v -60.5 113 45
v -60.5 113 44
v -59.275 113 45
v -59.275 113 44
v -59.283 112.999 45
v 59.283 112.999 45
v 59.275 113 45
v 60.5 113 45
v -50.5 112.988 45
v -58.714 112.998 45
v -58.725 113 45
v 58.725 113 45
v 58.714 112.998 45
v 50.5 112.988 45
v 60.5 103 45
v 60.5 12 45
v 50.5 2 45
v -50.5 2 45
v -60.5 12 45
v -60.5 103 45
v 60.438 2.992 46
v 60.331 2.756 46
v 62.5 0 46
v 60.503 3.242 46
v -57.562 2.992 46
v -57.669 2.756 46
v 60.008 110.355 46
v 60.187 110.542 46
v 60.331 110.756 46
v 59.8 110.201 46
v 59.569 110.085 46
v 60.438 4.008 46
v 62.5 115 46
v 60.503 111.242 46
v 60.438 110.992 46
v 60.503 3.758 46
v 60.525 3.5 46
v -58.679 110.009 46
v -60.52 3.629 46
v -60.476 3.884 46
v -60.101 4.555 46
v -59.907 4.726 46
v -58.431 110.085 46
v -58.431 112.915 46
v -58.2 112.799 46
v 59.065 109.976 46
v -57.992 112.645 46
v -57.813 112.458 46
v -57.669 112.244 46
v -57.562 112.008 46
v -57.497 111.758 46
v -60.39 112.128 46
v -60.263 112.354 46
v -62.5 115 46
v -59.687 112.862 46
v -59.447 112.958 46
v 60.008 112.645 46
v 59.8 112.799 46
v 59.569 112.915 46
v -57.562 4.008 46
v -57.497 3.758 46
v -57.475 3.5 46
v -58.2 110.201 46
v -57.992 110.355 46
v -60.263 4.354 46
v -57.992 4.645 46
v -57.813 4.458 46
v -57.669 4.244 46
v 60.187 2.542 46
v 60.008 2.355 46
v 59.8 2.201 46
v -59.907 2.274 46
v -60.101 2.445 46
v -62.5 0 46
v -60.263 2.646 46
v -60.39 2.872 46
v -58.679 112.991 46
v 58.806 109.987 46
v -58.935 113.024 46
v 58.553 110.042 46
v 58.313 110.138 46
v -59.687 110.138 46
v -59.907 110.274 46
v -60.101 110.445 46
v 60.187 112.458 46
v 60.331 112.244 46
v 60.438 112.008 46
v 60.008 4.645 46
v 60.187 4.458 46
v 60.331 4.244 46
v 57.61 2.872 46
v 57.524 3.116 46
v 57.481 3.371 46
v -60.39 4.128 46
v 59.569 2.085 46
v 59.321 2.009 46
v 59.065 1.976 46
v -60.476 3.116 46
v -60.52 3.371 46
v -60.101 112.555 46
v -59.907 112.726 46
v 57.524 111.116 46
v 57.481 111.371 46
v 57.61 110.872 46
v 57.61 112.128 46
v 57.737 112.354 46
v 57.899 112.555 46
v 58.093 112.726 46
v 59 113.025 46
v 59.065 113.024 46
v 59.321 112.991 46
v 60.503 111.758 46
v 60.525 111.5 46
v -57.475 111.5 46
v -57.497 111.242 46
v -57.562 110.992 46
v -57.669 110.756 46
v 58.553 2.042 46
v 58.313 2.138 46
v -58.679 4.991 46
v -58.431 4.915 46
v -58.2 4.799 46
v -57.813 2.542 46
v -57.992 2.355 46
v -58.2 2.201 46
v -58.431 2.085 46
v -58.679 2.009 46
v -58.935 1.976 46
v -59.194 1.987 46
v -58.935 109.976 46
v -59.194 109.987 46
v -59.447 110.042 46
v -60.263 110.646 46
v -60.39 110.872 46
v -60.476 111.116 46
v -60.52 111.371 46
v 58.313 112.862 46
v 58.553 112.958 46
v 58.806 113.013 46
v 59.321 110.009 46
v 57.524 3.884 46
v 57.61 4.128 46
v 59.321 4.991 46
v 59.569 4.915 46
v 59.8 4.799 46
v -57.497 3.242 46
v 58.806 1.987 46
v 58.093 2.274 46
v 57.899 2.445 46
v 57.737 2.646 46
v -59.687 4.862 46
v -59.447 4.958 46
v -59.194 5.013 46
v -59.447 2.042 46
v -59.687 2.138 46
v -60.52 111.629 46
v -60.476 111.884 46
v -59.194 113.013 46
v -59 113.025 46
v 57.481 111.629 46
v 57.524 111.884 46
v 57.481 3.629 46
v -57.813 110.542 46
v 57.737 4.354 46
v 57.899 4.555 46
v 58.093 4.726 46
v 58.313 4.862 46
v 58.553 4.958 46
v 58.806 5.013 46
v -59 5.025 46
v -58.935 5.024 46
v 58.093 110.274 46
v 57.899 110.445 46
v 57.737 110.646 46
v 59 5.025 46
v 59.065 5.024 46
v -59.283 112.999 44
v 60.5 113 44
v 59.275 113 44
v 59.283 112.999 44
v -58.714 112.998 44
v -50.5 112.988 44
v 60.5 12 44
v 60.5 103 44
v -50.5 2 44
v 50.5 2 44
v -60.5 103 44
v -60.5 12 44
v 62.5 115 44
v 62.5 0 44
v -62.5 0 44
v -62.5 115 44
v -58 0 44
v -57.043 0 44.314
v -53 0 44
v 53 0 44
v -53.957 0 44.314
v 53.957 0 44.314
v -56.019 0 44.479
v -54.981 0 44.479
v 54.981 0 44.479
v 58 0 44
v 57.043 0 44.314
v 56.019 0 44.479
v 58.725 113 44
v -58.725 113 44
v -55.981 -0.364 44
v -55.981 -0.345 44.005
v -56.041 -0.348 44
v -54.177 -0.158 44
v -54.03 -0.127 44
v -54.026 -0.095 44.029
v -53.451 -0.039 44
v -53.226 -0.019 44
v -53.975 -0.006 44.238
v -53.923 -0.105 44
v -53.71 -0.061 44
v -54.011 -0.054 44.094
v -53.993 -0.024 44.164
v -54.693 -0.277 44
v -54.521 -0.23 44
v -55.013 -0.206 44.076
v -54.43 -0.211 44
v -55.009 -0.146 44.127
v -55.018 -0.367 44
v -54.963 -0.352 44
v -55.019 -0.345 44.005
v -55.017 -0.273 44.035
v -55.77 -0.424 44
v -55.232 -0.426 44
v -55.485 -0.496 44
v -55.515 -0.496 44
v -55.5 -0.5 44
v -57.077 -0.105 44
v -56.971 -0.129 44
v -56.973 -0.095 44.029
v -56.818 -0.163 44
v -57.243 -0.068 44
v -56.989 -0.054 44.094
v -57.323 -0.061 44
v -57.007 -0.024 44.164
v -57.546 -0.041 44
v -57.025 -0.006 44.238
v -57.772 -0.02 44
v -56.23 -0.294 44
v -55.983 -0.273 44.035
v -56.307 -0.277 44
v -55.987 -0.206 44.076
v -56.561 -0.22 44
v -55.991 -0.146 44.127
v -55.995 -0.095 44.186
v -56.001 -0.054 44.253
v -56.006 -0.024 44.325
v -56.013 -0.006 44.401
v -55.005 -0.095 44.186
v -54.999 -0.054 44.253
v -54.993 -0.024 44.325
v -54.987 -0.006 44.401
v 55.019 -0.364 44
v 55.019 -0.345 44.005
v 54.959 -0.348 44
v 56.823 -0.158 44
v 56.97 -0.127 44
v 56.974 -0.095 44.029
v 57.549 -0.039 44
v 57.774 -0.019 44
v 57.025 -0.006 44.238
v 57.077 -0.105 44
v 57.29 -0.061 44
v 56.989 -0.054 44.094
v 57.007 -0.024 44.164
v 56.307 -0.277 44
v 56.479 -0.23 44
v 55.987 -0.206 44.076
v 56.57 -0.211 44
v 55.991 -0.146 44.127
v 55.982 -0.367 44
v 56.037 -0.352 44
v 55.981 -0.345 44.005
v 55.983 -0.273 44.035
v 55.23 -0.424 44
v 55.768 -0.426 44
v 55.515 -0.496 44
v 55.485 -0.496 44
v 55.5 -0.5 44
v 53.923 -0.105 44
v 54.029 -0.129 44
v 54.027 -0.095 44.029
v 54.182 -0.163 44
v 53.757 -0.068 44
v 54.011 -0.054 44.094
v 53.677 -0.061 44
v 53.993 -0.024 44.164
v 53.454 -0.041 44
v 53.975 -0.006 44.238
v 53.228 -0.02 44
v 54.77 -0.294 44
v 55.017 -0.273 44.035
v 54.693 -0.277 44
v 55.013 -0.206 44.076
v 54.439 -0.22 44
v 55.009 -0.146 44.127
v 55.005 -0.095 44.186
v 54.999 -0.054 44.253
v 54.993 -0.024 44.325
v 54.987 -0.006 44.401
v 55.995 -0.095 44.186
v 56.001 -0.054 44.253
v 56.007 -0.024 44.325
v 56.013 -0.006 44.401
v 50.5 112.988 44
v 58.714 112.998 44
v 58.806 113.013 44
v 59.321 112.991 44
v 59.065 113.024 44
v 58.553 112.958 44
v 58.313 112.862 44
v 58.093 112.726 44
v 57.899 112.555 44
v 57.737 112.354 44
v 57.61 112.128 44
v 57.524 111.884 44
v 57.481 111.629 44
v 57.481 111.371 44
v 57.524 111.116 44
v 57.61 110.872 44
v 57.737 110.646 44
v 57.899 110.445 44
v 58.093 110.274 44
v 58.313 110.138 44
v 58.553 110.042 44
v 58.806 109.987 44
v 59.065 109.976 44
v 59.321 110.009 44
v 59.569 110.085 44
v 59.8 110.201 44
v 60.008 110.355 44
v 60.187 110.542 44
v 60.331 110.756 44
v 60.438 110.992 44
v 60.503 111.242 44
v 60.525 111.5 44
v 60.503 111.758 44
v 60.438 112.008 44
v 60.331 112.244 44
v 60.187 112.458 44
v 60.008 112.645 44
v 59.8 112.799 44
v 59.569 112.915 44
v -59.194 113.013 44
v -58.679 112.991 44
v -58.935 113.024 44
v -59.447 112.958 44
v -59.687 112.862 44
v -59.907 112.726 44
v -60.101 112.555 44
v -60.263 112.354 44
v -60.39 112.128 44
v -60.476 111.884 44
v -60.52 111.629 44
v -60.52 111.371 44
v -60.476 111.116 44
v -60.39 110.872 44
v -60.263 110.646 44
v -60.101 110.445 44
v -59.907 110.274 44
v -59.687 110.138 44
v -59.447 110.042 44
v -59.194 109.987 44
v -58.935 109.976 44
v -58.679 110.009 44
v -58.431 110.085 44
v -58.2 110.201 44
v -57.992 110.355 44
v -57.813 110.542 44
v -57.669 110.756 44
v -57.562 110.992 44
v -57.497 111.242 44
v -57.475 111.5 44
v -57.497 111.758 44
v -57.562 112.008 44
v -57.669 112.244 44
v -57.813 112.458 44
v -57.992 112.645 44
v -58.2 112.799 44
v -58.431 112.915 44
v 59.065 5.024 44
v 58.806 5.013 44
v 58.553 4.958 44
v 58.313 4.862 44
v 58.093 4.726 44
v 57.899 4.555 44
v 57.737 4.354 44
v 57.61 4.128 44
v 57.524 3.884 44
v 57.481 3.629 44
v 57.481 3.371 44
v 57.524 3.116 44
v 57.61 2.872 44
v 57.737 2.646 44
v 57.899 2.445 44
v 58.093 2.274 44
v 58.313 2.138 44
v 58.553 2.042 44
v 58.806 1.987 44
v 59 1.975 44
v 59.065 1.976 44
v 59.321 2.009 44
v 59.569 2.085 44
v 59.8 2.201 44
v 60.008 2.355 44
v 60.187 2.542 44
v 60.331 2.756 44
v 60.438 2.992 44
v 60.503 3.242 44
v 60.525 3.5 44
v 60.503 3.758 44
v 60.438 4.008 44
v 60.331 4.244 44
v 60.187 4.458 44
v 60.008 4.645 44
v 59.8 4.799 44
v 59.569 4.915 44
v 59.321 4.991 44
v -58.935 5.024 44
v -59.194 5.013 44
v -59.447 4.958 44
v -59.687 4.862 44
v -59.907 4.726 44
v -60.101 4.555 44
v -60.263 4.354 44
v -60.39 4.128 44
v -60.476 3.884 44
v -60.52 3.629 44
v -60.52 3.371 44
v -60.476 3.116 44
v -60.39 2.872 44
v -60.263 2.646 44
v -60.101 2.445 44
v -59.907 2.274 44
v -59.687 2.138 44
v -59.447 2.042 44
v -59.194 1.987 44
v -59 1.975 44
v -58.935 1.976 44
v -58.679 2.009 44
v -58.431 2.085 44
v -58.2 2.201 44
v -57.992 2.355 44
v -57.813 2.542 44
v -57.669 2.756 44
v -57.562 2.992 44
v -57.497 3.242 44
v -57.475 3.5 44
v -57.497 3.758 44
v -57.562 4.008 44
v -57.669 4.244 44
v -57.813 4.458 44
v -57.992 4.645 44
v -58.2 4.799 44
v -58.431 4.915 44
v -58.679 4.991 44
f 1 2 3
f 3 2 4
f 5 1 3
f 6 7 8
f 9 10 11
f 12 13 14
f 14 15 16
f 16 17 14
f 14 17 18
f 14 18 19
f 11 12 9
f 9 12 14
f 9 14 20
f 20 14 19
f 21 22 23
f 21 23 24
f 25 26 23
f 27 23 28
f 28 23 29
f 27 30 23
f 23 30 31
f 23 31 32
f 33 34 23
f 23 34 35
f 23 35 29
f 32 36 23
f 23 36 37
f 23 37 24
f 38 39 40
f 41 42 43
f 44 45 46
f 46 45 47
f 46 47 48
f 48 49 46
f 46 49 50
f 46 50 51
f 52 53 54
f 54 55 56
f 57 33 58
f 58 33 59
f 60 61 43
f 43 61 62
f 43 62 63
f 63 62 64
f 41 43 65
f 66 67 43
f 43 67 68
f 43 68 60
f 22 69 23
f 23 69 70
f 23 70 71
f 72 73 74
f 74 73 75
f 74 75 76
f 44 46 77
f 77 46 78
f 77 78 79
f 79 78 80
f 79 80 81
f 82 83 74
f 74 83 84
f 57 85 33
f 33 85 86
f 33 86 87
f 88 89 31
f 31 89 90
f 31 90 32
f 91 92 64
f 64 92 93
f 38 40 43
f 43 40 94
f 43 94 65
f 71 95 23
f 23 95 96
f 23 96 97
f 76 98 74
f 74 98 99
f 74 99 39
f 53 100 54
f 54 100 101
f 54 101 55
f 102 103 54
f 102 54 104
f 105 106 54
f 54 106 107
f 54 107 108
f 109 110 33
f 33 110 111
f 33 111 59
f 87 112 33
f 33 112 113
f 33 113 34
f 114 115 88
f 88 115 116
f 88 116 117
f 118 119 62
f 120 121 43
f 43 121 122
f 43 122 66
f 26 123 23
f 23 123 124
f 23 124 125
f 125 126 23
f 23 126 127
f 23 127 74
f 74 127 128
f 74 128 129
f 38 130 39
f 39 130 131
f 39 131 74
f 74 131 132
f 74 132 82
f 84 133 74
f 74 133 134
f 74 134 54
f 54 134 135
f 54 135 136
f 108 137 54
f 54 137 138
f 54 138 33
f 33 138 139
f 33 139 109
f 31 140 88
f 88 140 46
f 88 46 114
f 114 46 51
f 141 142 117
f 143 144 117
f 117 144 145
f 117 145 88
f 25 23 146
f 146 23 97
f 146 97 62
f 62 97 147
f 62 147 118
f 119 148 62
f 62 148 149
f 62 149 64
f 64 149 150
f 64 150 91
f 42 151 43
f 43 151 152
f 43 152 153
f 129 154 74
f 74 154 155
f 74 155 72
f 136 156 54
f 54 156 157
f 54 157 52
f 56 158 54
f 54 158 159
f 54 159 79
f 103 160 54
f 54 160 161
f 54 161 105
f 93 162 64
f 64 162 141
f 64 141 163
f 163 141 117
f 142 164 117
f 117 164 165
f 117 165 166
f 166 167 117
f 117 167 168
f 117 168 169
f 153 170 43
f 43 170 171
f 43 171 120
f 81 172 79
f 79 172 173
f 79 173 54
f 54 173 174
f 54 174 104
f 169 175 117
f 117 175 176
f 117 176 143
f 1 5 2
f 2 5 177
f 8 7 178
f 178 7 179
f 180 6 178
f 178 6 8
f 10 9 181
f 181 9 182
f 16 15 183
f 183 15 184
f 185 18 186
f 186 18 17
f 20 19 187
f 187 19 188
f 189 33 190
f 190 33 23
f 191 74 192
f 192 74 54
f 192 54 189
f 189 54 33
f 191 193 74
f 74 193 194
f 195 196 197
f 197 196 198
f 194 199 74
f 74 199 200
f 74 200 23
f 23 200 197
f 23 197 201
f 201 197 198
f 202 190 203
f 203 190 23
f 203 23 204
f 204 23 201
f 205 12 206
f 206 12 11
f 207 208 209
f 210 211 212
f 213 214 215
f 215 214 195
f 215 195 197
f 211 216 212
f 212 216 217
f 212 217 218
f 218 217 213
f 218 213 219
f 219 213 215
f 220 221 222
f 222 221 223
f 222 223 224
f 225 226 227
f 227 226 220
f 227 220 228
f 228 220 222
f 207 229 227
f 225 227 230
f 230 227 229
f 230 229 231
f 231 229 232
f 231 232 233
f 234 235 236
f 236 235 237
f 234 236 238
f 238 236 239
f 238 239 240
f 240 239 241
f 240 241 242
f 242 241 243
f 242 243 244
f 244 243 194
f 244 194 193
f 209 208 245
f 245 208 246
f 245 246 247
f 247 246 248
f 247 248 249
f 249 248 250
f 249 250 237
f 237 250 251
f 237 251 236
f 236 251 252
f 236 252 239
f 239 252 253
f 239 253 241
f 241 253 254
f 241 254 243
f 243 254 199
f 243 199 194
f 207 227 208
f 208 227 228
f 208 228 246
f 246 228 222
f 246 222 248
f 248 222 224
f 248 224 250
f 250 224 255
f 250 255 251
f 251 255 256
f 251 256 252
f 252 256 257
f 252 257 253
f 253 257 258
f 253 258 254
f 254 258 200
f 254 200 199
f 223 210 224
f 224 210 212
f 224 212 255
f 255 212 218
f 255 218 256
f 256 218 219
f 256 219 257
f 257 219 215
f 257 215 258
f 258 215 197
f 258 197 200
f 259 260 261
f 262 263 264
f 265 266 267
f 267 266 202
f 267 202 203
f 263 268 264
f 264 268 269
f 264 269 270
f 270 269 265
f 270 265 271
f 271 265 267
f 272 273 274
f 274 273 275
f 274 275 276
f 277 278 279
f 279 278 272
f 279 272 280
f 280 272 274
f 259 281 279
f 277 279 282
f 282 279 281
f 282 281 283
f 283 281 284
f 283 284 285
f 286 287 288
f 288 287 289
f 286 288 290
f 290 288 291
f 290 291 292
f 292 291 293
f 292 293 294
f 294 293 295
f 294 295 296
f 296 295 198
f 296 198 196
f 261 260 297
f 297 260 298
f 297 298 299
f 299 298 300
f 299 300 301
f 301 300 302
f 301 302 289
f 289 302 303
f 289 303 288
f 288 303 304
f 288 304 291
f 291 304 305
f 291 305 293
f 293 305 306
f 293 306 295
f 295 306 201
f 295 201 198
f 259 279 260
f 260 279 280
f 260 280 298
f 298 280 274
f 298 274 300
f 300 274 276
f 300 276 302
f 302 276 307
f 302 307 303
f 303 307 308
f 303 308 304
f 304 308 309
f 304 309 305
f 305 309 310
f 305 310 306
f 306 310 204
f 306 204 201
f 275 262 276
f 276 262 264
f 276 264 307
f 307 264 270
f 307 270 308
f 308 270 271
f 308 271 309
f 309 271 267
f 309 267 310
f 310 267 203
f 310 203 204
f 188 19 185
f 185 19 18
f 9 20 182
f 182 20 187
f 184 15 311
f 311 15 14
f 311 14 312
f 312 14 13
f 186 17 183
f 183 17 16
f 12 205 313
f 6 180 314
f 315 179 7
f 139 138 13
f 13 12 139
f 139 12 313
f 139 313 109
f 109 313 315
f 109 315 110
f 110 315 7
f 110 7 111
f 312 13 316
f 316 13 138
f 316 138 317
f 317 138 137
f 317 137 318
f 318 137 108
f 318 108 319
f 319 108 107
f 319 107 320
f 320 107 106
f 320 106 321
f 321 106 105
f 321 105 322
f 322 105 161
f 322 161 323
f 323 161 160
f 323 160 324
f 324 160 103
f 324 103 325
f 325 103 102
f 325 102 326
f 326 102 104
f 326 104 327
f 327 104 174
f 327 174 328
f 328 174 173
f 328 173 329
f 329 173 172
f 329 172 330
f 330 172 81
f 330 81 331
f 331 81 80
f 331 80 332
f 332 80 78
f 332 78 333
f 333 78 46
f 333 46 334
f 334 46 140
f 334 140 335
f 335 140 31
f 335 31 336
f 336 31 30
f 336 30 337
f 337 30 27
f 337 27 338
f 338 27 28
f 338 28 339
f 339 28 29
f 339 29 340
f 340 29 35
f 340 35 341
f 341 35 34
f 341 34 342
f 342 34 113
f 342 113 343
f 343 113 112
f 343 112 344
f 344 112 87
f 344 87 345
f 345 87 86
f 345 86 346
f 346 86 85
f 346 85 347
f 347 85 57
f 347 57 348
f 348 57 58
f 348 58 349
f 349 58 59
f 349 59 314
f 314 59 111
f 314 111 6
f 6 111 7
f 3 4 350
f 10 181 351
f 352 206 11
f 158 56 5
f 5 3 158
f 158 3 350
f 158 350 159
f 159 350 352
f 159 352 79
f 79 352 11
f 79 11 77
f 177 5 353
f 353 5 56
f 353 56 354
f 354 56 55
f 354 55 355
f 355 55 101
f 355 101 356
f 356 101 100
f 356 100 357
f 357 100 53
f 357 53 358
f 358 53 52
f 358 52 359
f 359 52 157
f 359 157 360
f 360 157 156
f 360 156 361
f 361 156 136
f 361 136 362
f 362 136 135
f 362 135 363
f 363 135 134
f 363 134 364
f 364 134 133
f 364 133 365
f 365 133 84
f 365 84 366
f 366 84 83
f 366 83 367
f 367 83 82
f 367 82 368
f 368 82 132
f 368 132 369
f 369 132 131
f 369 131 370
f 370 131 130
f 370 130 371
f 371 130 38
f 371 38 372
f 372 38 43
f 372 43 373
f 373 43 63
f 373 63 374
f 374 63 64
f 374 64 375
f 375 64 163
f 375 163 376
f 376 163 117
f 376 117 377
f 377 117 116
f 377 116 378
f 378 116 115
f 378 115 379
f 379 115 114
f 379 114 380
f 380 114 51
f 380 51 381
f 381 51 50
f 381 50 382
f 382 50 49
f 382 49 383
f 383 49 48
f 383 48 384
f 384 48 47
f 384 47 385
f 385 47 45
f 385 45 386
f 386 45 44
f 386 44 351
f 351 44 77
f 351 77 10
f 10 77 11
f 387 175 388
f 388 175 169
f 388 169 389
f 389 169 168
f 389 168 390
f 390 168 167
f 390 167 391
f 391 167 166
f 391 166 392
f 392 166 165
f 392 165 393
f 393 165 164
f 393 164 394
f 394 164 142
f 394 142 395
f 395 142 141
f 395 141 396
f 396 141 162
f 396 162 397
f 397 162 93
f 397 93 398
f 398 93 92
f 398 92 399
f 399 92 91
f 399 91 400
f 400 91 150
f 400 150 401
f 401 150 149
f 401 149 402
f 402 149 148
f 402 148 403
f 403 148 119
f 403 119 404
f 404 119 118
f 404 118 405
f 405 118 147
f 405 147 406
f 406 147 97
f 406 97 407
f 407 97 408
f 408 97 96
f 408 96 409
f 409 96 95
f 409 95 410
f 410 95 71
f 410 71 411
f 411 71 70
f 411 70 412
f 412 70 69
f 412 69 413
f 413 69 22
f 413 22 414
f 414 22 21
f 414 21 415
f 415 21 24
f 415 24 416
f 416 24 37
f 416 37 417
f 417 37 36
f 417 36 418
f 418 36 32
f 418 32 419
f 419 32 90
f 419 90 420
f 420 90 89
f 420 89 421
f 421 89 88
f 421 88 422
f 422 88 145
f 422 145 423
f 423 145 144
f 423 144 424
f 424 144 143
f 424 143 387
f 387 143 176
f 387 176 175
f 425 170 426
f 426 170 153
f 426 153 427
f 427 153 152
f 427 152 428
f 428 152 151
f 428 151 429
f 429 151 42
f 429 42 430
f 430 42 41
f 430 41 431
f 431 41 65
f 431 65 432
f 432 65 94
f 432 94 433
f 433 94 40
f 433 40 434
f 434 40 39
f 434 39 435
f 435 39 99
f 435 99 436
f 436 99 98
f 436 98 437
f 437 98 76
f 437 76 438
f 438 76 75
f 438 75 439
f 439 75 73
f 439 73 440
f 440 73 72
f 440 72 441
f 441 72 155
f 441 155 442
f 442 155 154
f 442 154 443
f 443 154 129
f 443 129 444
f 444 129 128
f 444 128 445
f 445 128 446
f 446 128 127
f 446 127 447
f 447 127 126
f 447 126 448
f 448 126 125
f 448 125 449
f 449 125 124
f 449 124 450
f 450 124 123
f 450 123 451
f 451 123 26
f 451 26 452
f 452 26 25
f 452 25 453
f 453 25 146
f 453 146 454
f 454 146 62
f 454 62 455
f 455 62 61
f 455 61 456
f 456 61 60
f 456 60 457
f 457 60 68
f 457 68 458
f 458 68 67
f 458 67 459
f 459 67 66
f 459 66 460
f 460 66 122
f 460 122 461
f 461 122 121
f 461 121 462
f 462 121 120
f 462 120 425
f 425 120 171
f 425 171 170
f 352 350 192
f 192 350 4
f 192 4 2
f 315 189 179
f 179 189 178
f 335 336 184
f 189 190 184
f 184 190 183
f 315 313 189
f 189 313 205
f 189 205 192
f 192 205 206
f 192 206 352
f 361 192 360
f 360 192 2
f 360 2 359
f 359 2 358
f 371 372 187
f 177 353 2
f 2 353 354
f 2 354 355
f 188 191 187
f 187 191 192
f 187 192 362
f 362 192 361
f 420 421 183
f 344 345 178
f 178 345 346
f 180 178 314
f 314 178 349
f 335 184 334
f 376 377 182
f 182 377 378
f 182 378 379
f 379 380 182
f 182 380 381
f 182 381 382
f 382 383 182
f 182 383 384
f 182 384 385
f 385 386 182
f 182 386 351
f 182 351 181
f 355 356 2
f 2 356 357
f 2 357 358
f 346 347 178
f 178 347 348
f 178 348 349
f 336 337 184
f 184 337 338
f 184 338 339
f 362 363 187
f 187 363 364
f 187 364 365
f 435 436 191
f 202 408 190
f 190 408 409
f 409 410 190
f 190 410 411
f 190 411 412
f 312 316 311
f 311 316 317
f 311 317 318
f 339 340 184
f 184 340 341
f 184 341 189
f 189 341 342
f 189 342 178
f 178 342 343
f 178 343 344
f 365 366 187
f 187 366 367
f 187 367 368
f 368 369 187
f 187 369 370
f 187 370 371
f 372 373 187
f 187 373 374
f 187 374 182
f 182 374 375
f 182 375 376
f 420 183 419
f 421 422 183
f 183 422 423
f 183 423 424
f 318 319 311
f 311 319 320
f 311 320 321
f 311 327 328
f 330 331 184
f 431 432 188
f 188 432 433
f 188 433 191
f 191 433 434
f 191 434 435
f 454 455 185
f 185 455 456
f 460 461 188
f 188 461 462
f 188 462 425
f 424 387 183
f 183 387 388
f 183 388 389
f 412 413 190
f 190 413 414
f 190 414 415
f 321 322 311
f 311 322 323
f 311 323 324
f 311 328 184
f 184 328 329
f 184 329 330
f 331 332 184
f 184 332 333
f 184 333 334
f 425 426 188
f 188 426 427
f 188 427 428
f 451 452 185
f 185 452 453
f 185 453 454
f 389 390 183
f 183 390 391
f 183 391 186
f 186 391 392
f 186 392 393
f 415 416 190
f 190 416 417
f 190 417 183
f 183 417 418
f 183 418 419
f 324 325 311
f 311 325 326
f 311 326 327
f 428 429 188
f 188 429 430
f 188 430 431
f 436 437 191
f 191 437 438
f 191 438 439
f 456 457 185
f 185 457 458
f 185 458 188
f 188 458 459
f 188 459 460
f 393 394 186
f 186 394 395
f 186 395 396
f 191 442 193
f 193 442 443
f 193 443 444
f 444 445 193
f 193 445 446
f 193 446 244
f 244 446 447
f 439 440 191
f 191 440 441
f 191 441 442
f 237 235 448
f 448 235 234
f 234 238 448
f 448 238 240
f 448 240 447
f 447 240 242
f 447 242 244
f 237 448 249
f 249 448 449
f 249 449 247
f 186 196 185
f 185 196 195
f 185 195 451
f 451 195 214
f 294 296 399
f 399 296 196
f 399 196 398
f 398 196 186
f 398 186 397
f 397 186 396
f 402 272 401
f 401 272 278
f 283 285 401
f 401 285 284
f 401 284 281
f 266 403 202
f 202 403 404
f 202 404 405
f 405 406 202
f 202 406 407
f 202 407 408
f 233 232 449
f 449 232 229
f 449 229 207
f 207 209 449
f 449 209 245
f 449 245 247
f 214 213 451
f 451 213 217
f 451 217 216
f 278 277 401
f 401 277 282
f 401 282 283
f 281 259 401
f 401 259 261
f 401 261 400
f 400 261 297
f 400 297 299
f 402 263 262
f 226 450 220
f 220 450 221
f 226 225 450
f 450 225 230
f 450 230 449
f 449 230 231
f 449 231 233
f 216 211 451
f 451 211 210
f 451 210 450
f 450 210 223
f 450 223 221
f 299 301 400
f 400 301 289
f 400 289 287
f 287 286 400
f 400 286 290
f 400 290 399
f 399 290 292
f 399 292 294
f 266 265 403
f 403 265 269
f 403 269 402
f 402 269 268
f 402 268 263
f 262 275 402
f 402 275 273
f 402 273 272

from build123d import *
from OCP.BRepFilletAPI import BRepFilletAPI_MakeChamfer

# Parameters (mm, degrees)
SKETCH1_W            = 125
SKETCH1_H            = 90
BOSS_EXTRUDE1_DEPTH  = 115
SHELL1_T             = -2
SKETCH4_W            = 67.8
SKETCH4_H            = 16.7
CUT_EXTRUDE1_DEPTH   = 1
SKETCH5_R            = 3.25
CUT_EXTRUDE2_DEPTH   = 37
SKETCH6_W            = 1
SKETCH6_H            = 111
BOSS_EXTRUDE2_DEPTH  = 10
FILLET1_SIZE         = 4
FILLET1_SIZE_2       = 10
FILLET2_R            = 1
SKETCH7_R            = 13
CUT_EXTRUDE3_DEPTH   = 10
SKETCH8_W            = 24
SKETCH8_H            = 49.041471127
BOSS_EXTRUDE3_DEPTH  = 12
CHAMFER1_SIZE        = 10
CHAMFER1_SIZE2       = 11.917535926
CUT_EXTRUDE4_DEPTH   = 40
SKETCH10_R           = 1.4
BOSS_EXTRUDE4_DEPTH  = 10
FILLET3_R            = 1
SKETCH11_R           = 3.25
CUT_EXTRUDE5_DEPTH   = 161
SKETCH13_R           = 5.75
CUT_EXTRUDE6_DEPTH   = 161
SKETCH14_R           = 6
SKETCH14_R_2         = 5.5
BOSS_EXTRUDE5_DEPTH  = 1
FILLET4_R            = 0.5
FILLET5_R            = 0.5
CUT_EXTRUDE7_DEPTH   = 9
BOSS_EXTRUDE6_DEPTH  = 20
CHAMFER2_SIZE        = 10
CHAMFER2_SIZE2       = 9.656887748
CHAMFER3_SIZE        = 5
CHAMFER3_SIZE2       = 9.813052528
SKETCH19_R           = 1.525
CUT_EXTRUDE8_DEPTH   = 18
SKETCH23_W           = 103.271757447
SKETCH23_H           = 129.791226308
CUT_EXTRUDE9_DEPTH   = 210
SKETCH24_W           = 125
SKETCH24_H           = 115
BOSS_EXTRUDE10_DEPTH = 1
CUT_EXTRUDE10_START  = -2
SKETCH25_R           = 1.525
CUT_EXTRUDE10_DEPTH  = 2


# Some blends are built 0.0001 mm under size
with BuildPart() as part:
    # Sketch1 → Boss-Extrude1 (new body)
    with BuildSketch(Plane(origin=(0, 0, 0), x_dir=(1, 0, 0), z_dir=(0, 1, 0))):
        Rectangle(SKETCH1_W, SKETCH1_H)
    extrude(amount=BOSS_EXTRUDE1_DEPTH)

    # Shell1
    shell1_openings = [part.faces().sort_by_distance(p)[0] for p in [
        (0, 57.5, 45),
    ]]
    offset(amount=SHELL1_T, openings=shell1_openings, kind=Kind.INTERSECTION)

    # Sketch4 → Cut-Extrude1 (cut)
    with BuildSketch(Plane.XZ.offset(-113)):
        with Locations((-26.6, -34.65)):
            Rectangle(SKETCH4_W, SKETCH4_H)
    extrude(amount=-CUT_EXTRUDE1_DEPTH, mode=Mode.SUBTRACT)

    # Sketch5 → Cut-Extrude2 (cut)
    with BuildSketch(Plane.XZ.offset(-114)):
        with Locations(Location((-50.5, -34.65, 0), (0, 0, 270))):
            Circle(SKETCH5_R)
    extrude(amount=-CUT_EXTRUDE2_DEPTH, mode=Mode.SUBTRACT)

    # Sketch6 → Boss-Extrude2 (add)
    with BuildSketch(Plane.XY.offset(-43)):
        with Locations((7.8, 57.5)):
            Rectangle(SKETCH6_W, SKETCH6_H)
    extrude(amount=BOSS_EXTRUDE2_DEPTH)

    # Fillet1
    # a fillet whose section is not a circle: 10, 4 mm, written as the material it adds along each edge
    with BuildSketch(Plane(origin=(8.3, 2, -43), x_dir=(1, 0, 0), z_dir=(0, 1, 0))) as fillet1_piece_1:
        with BuildLine():
            Bezier((FILLET1_SIZE, 0), (0, 0), (0, -FILLET1_SIZE_2), weights=[1, 0.707106781, 1])
            Line((0, -FILLET1_SIZE_2), (0, 0))
            Line((0, 0), (FILLET1_SIZE, 0))
        make_face()
    extrude(amount=111)

    # Fillet2
    fillet2_edges = [part.edges().sort_by_distance(p)[0] for p in [
        (8.3, 57.5, -33),
    ]]
    fillet(fillet2_edges, radius=FILLET2_R)

    # Sketch7 → Cut-Extrude3 (cut)
    with BuildSketch(Plane(origin=(62.5, 0, 0), x_dir=(0, 0, -1), z_dir=(1, 0, 0))):
        with Locations((0, 35)):
            Circle(SKETCH7_R)
    extrude(amount=-CUT_EXTRUDE3_DEPTH, mode=Mode.SUBTRACT)

    # Sketch8 → Boss-Extrude3 (add)
    with BuildSketch(Plane.ZY.offset(62.5)):
        with Locations((15, 90.479264437)):
            Rectangle(SKETCH8_W, SKETCH8_H)
    extrude(amount=BOSS_EXTRUDE3_DEPTH)

    # Chamfer1
    chamfer1_edges = [part.edges().sort_by_distance(p)[0] for p in [
        (-62.5, 90.479264436, 3),
    ]]
    chamfer1_side = [part.faces().sort_by_distance(p)[0] for p in [
        (-62.5, 53.268405144, -1.924661569),
    ]]
    chamfer(chamfer1_edges, length=CHAMFER1_SIZE, length2=CHAMFER1_SIZE2, reference=chamfer1_side[0])

    # Sketch9 → Cut-Extrude4 (cut)
    with BuildSketch(Plane(origin=(0, 115, 0), x_dir=(1, 0, 0), z_dir=(0, 1, 0))):
        Polygon((-64.139712889, -5), (-72.5, -5), (-72.5, -21.393203559), (-72.5, -25), (-64.139712889, -25), align=None)
    extrude(amount=-CUT_EXTRUDE4_DEPTH, mode=Mode.SUBTRACT)

    # Sketch10 → Boss-Extrude4 (add)
    with BuildSketch(Plane.XY.offset(-43)):
        with Locations((22.3, 78.5)):
            Circle(SKETCH10_R)
        with Locations(Location((51.3, 78.5, 0), (0, 0, 180))):
            Circle(SKETCH10_R)
        with Locations((51.3, 105)):
            Circle(SKETCH10_R)
        with Locations(Location((22.3, 105, 0), (0, 0, 180))):
            Circle(SKETCH10_R)
    extrude(amount=BOSS_EXTRUDE4_DEPTH)

    # Fillet3
    fillet3_edges = [part.edges().sort_by_distance(p)[0] for p in [
        (23.7, 105, -43),
        (49.9, 105, -43),
        (52.7, 78.5, -43),
        (20.9, 78.5, -43),
    ]]
    fillet(fillet3_edges, radius=FILLET3_R)

    # Sketch11 → Cut-Extrude5 (cut)
    with BuildSketch(Plane.XZ.offset(-113)):
        with Locations(Location((42.3, -38.5, 0), (0, 0, 270))):
            Circle(SKETCH11_R)
    extrude(amount=-CUT_EXTRUDE5_DEPTH, mode=Mode.SUBTRACT)

    # Sketch13 → Cut-Extrude6 (cut)
    with BuildSketch(Plane(origin=(-60.5, 0, 0), x_dir=(0, 0, -1), z_dir=(1, 0, 0))):
        with Locations((18, 25)):
            Circle(SKETCH13_R)
    extrude(amount=-CUT_EXTRUDE6_DEPTH, mode=Mode.SUBTRACT)

    # Sketch14 → Boss-Extrude5 (add)
    # profile 1 of 4: a face of its own
    with BuildSketch(Plane.XZ):
        with Locations(Location((-55.5, 38, 0), (0, 0, 270))):
            Circle(SKETCH14_R)
        with Locations(Location((-55.5, 38, 0), (0, 0, 270))):
            Circle(SKETCH14_R_2, mode=Mode.SUBTRACT)
    # profile 2 of 4: a face of its own
    with BuildSketch(Plane.XZ):
        with Locations(Location((55.5, 38, 0), (0, 0, 270))):
            Circle(SKETCH14_R)
        with Locations(Location((55.5, 38, 0), (0, 0, 270))):
            Circle(SKETCH14_R_2, mode=Mode.SUBTRACT)
    # profile 3 of 4: a face of its own
    with BuildSketch(Plane.XZ):
        with Locations(Location((55.5, -38, 0), (0, 0, 270))):
            Circle(SKETCH14_R)
        with Locations(Location((55.5, -38, 0), (0, 0, 270))):
            Circle(SKETCH14_R_2, mode=Mode.SUBTRACT)
    # profile 4 of 4: a face of its own
    with BuildSketch(Plane.XZ):
        with Locations(Location((-55.5, -38, 0), (0, 0, 270))):
            Circle(SKETCH14_R)
    extrude(amount=BOSS_EXTRUDE5_DEPTH)

    # Fillet4
    fillet4_edges = [part.edges().sort_by_distance(p)[0] for p in [
        (-55.5, -1, 44),
        (-55.5, 0, 44),
    ]]
    fillet(fillet4_edges, radius=FILLET4_R - 0.0001)  # a hair under: the kernel refuses the full size

    # Fillet5
    fillet5_edges = [part.edges().sort_by_distance(p)[0] for p in [
        (55.5, 0, -32),
        (55.5, -1, -32),
        (55.5, 0, 44),
        (55.5, -1, 44),
        (-55.5, 0, -32),
        (-55.5, -1, -32),
    ]]
    fillet(fillet5_edges, radius=FILLET5_R - 0.0001)  # a hair under: the kernel refuses the full size

    # Sketch17 → Cut-Extrude7 (cut)
    with BuildSketch(Plane(origin=(0, 115, 0), x_dir=(1, 0, 0), z_dir=(0, 1, 0))):
        with BuildLine():
            ThreePointArc((25, -35), (20.732233047, -33.232233047), (22.5, -37.5))
            Line((22.5, -37.5), (22.5, -35))
            Line((22.5, -35), (25, -35))
        make_face()
        with BuildLine():
            Line((22.5, -35), (22.5, -37.5))
            ThreePointArc((22.5, -37.5), (24.267766953, -36.767766953), (25, -35))
            Line((25, -35), (22.5, -35))
        make_face()
        with BuildLine():
            ThreePointArc((32, -35), (29.5, -32.5), (27, -35))
            Line((27, -35), (32, -35))
        make_face()
        with BuildLine():
            Line((32, -35), (27, -35))
            ThreePointArc((27, -35), (29.5, -37.5), (32, -35))
        make_face()
        with BuildLine():
            ThreePointArc((39, -35), (36.5, -32.5), (34, -35))
            Line((34, -35), (39, -35))
        make_face()
        with BuildLine():
            Line((39, -35), (34, -35))
            ThreePointArc((34, -35), (36.5, -37.5), (39, -35))
        make_face()
        with BuildLine():
            ThreePointArc((46, -35), (43.5, -32.5), (41, -35))
            Line((41, -35), (46, -35))
        make_face()
        with BuildLine():
            Line((46, -35), (41, -35))
            ThreePointArc((41, -35), (43.5, -37.5), (46, -35))
        make_face()
    extrude(amount=-CUT_EXTRUDE7_DEPTH, mode=Mode.SUBTRACT)

    # Sketch18 → Boss-Extrude6 (add)
    with BuildSketch(Plane.XY.offset(45)):
        Polygon((-50.5, 2), (-60.5, 12), (-60.5, 2), align=None)
        Polygon((-60.5, 113), (-60.5, 103), (-50.5, 112.988112704), align=None)
        Polygon((50.5, 112.988112704), (60.5, 103), (60.5, 113), align=None)
        Polygon((60.5, 12), (50.5, 2), (60.5, 2), align=None)
    extrude(amount=-BOSS_EXTRUDE6_DEPTH)

    # Chamfer2
    chamfer2_edges = [part.edges().sort_by_distance(p)[0] for p in [
        (-55.5, 2, 25),
        (55.5, 2, 25),
    ]]
    chamfer2_side = [part.faces().sort_by_distance(p)[0] for p in [
        (-0.015179925, 2, -0.25697617),
    ]]
    chamfer(chamfer2_edges, length=CHAMFER2_SIZE, length2=CHAMFER2_SIZE2, reference=chamfer2_side[0])

    # Chamfer3: one chamfer whose edges measure the first distance from different faces: ONE call of the kernel's chamfer builder (chamfer() names one face for all edges)
    chamfer3_edges_1 = [part.edges().sort_by_distance(p)[0] for p in [
        (-60.5, 108, 25),
    ]]
    chamfer3_side_1 = [part.faces().sort_by_distance(p)[0] for p in [
        (-60.5, 58.240348279, -0.431861074),
    ]]
    chamfer3_edges_2 = [part.edges().sort_by_distance(p)[0] for p in [
        (60.5, 108, 25),
    ]]
    chamfer3_side_2 = [part.faces().sort_by_distance(p)[0] for p in [
        (60.5, 59.1464465, -0.600556504),
    ]]
    chamfer3 = BRepFilletAPI_MakeChamfer(part.part.solid().wrapped)
    for e in chamfer3_edges_1:
        chamfer3.Add(CHAMFER3_SIZE, CHAMFER3_SIZE2, e.wrapped, chamfer3_side_1[0].wrapped)  # the first distance lies on this face
    for e in chamfer3_edges_2:
        chamfer3.Add(CHAMFER3_SIZE, CHAMFER3_SIZE2, e.wrapped, chamfer3_side_2[0].wrapped)  # the first distance lies on this face
    add(Compound.cast(chamfer3.Shape()), mode=Mode.REPLACE)

    # Sketch19 → Cut-Extrude8 (cut)
    with BuildSketch(Plane.XY.offset(45)):
        with Locations((-59, 3.5)):
            Circle(SKETCH19_R)
        with BuildLine():
            ThreePointArc((-59.282778619, 112.998553053), (-59.001812811, 109.975001077), (-58.713659436, 112.997876524))
            Line((-58.713659436, 112.997876524), (-59.282778619, 112.998553053))
        make_face()
        with BuildLine():
            Line((59.282778619, 112.998553053), (58.713659436, 112.997876524))
            ThreePointArc((58.713659436, 112.997876524), (59.001812811, 109.975001077), (59.282778619, 112.998553053))
        make_face()
        with BuildLine():
            ThreePointArc((59.275, 113), (59, 113.025), (58.725, 113))
            Line((58.725, 113), (59.275, 113))
        make_face()
        with Locations((59, 3.5)):
            Circle(SKETCH19_R)
    extrude(amount=-CUT_EXTRUDE8_DEPTH, mode=Mode.SUBTRACT)

    # Sketch23 → Cut-Extrude9 (cut)
    with BuildSketch(Plane(origin=(62.5, 0, 0), x_dir=(0, 0, -1), z_dir=(1, 0, 0))):
        with Locations((7.635878724, 50.104386846)):
            Rectangle(SKETCH23_W, SKETCH23_H)
    extrude(amount=-CUT_EXTRUDE9_DEPTH, mode=Mode.SUBTRACT)

    # Sketch24 → Boss-Extrude10 (add)
    with BuildSketch(Plane.XY.offset(45)):
        with Locations((0, 57.5)):
            Rectangle(SKETCH24_W, SKETCH24_H)
    extrude(amount=BOSS_EXTRUDE10_DEPTH)

    # Sketch25 → Cut-Extrude10 (cut)
    with BuildSketch(Plane(origin=(0, 0, 44), x_dir=(-1, 0, 0), z_dir=(0, 0, -1)).offset(CUT_EXTRUDE10_START)):
        with BuildLine():
            ThreePointArc((-59.282778619, 112.998553053), (-59.973238821, 110.325933904), (-57.475, 111.5))
            ThreePointArc((-57.475, 111.5), (-57.824777817, 112.471842487), (-58.713659436, 112.997876524))
            ThreePointArc((-58.713659436, 112.997876524), (-58.71932771, 112.998948987), (-58.725, 113))
            ThreePointArc((-58.725, 113), (-59, 113.025), (-59.275, 113))
            ThreePointArc((-59.275, 113), (-59.278890248, 112.999281571), (-59.282778619, 112.998553053))
        make_face()
        with Locations(Location((-59, 3.5, 0), (0, 0, 270))):
            Circle(SKETCH25_R)
        with Locations(Location((59, 3.5, 0), (0, 0, 270))):
            Circle(SKETCH25_R)
        with Locations(Location((59, 111.5, 0), (0, 0, 100.822340204))):
            Circle(SKETCH25_R)
    extrude(amount=CUT_EXTRUDE10_DEPTH, mode=Mode.SUBTRACT)


solid = part.part
